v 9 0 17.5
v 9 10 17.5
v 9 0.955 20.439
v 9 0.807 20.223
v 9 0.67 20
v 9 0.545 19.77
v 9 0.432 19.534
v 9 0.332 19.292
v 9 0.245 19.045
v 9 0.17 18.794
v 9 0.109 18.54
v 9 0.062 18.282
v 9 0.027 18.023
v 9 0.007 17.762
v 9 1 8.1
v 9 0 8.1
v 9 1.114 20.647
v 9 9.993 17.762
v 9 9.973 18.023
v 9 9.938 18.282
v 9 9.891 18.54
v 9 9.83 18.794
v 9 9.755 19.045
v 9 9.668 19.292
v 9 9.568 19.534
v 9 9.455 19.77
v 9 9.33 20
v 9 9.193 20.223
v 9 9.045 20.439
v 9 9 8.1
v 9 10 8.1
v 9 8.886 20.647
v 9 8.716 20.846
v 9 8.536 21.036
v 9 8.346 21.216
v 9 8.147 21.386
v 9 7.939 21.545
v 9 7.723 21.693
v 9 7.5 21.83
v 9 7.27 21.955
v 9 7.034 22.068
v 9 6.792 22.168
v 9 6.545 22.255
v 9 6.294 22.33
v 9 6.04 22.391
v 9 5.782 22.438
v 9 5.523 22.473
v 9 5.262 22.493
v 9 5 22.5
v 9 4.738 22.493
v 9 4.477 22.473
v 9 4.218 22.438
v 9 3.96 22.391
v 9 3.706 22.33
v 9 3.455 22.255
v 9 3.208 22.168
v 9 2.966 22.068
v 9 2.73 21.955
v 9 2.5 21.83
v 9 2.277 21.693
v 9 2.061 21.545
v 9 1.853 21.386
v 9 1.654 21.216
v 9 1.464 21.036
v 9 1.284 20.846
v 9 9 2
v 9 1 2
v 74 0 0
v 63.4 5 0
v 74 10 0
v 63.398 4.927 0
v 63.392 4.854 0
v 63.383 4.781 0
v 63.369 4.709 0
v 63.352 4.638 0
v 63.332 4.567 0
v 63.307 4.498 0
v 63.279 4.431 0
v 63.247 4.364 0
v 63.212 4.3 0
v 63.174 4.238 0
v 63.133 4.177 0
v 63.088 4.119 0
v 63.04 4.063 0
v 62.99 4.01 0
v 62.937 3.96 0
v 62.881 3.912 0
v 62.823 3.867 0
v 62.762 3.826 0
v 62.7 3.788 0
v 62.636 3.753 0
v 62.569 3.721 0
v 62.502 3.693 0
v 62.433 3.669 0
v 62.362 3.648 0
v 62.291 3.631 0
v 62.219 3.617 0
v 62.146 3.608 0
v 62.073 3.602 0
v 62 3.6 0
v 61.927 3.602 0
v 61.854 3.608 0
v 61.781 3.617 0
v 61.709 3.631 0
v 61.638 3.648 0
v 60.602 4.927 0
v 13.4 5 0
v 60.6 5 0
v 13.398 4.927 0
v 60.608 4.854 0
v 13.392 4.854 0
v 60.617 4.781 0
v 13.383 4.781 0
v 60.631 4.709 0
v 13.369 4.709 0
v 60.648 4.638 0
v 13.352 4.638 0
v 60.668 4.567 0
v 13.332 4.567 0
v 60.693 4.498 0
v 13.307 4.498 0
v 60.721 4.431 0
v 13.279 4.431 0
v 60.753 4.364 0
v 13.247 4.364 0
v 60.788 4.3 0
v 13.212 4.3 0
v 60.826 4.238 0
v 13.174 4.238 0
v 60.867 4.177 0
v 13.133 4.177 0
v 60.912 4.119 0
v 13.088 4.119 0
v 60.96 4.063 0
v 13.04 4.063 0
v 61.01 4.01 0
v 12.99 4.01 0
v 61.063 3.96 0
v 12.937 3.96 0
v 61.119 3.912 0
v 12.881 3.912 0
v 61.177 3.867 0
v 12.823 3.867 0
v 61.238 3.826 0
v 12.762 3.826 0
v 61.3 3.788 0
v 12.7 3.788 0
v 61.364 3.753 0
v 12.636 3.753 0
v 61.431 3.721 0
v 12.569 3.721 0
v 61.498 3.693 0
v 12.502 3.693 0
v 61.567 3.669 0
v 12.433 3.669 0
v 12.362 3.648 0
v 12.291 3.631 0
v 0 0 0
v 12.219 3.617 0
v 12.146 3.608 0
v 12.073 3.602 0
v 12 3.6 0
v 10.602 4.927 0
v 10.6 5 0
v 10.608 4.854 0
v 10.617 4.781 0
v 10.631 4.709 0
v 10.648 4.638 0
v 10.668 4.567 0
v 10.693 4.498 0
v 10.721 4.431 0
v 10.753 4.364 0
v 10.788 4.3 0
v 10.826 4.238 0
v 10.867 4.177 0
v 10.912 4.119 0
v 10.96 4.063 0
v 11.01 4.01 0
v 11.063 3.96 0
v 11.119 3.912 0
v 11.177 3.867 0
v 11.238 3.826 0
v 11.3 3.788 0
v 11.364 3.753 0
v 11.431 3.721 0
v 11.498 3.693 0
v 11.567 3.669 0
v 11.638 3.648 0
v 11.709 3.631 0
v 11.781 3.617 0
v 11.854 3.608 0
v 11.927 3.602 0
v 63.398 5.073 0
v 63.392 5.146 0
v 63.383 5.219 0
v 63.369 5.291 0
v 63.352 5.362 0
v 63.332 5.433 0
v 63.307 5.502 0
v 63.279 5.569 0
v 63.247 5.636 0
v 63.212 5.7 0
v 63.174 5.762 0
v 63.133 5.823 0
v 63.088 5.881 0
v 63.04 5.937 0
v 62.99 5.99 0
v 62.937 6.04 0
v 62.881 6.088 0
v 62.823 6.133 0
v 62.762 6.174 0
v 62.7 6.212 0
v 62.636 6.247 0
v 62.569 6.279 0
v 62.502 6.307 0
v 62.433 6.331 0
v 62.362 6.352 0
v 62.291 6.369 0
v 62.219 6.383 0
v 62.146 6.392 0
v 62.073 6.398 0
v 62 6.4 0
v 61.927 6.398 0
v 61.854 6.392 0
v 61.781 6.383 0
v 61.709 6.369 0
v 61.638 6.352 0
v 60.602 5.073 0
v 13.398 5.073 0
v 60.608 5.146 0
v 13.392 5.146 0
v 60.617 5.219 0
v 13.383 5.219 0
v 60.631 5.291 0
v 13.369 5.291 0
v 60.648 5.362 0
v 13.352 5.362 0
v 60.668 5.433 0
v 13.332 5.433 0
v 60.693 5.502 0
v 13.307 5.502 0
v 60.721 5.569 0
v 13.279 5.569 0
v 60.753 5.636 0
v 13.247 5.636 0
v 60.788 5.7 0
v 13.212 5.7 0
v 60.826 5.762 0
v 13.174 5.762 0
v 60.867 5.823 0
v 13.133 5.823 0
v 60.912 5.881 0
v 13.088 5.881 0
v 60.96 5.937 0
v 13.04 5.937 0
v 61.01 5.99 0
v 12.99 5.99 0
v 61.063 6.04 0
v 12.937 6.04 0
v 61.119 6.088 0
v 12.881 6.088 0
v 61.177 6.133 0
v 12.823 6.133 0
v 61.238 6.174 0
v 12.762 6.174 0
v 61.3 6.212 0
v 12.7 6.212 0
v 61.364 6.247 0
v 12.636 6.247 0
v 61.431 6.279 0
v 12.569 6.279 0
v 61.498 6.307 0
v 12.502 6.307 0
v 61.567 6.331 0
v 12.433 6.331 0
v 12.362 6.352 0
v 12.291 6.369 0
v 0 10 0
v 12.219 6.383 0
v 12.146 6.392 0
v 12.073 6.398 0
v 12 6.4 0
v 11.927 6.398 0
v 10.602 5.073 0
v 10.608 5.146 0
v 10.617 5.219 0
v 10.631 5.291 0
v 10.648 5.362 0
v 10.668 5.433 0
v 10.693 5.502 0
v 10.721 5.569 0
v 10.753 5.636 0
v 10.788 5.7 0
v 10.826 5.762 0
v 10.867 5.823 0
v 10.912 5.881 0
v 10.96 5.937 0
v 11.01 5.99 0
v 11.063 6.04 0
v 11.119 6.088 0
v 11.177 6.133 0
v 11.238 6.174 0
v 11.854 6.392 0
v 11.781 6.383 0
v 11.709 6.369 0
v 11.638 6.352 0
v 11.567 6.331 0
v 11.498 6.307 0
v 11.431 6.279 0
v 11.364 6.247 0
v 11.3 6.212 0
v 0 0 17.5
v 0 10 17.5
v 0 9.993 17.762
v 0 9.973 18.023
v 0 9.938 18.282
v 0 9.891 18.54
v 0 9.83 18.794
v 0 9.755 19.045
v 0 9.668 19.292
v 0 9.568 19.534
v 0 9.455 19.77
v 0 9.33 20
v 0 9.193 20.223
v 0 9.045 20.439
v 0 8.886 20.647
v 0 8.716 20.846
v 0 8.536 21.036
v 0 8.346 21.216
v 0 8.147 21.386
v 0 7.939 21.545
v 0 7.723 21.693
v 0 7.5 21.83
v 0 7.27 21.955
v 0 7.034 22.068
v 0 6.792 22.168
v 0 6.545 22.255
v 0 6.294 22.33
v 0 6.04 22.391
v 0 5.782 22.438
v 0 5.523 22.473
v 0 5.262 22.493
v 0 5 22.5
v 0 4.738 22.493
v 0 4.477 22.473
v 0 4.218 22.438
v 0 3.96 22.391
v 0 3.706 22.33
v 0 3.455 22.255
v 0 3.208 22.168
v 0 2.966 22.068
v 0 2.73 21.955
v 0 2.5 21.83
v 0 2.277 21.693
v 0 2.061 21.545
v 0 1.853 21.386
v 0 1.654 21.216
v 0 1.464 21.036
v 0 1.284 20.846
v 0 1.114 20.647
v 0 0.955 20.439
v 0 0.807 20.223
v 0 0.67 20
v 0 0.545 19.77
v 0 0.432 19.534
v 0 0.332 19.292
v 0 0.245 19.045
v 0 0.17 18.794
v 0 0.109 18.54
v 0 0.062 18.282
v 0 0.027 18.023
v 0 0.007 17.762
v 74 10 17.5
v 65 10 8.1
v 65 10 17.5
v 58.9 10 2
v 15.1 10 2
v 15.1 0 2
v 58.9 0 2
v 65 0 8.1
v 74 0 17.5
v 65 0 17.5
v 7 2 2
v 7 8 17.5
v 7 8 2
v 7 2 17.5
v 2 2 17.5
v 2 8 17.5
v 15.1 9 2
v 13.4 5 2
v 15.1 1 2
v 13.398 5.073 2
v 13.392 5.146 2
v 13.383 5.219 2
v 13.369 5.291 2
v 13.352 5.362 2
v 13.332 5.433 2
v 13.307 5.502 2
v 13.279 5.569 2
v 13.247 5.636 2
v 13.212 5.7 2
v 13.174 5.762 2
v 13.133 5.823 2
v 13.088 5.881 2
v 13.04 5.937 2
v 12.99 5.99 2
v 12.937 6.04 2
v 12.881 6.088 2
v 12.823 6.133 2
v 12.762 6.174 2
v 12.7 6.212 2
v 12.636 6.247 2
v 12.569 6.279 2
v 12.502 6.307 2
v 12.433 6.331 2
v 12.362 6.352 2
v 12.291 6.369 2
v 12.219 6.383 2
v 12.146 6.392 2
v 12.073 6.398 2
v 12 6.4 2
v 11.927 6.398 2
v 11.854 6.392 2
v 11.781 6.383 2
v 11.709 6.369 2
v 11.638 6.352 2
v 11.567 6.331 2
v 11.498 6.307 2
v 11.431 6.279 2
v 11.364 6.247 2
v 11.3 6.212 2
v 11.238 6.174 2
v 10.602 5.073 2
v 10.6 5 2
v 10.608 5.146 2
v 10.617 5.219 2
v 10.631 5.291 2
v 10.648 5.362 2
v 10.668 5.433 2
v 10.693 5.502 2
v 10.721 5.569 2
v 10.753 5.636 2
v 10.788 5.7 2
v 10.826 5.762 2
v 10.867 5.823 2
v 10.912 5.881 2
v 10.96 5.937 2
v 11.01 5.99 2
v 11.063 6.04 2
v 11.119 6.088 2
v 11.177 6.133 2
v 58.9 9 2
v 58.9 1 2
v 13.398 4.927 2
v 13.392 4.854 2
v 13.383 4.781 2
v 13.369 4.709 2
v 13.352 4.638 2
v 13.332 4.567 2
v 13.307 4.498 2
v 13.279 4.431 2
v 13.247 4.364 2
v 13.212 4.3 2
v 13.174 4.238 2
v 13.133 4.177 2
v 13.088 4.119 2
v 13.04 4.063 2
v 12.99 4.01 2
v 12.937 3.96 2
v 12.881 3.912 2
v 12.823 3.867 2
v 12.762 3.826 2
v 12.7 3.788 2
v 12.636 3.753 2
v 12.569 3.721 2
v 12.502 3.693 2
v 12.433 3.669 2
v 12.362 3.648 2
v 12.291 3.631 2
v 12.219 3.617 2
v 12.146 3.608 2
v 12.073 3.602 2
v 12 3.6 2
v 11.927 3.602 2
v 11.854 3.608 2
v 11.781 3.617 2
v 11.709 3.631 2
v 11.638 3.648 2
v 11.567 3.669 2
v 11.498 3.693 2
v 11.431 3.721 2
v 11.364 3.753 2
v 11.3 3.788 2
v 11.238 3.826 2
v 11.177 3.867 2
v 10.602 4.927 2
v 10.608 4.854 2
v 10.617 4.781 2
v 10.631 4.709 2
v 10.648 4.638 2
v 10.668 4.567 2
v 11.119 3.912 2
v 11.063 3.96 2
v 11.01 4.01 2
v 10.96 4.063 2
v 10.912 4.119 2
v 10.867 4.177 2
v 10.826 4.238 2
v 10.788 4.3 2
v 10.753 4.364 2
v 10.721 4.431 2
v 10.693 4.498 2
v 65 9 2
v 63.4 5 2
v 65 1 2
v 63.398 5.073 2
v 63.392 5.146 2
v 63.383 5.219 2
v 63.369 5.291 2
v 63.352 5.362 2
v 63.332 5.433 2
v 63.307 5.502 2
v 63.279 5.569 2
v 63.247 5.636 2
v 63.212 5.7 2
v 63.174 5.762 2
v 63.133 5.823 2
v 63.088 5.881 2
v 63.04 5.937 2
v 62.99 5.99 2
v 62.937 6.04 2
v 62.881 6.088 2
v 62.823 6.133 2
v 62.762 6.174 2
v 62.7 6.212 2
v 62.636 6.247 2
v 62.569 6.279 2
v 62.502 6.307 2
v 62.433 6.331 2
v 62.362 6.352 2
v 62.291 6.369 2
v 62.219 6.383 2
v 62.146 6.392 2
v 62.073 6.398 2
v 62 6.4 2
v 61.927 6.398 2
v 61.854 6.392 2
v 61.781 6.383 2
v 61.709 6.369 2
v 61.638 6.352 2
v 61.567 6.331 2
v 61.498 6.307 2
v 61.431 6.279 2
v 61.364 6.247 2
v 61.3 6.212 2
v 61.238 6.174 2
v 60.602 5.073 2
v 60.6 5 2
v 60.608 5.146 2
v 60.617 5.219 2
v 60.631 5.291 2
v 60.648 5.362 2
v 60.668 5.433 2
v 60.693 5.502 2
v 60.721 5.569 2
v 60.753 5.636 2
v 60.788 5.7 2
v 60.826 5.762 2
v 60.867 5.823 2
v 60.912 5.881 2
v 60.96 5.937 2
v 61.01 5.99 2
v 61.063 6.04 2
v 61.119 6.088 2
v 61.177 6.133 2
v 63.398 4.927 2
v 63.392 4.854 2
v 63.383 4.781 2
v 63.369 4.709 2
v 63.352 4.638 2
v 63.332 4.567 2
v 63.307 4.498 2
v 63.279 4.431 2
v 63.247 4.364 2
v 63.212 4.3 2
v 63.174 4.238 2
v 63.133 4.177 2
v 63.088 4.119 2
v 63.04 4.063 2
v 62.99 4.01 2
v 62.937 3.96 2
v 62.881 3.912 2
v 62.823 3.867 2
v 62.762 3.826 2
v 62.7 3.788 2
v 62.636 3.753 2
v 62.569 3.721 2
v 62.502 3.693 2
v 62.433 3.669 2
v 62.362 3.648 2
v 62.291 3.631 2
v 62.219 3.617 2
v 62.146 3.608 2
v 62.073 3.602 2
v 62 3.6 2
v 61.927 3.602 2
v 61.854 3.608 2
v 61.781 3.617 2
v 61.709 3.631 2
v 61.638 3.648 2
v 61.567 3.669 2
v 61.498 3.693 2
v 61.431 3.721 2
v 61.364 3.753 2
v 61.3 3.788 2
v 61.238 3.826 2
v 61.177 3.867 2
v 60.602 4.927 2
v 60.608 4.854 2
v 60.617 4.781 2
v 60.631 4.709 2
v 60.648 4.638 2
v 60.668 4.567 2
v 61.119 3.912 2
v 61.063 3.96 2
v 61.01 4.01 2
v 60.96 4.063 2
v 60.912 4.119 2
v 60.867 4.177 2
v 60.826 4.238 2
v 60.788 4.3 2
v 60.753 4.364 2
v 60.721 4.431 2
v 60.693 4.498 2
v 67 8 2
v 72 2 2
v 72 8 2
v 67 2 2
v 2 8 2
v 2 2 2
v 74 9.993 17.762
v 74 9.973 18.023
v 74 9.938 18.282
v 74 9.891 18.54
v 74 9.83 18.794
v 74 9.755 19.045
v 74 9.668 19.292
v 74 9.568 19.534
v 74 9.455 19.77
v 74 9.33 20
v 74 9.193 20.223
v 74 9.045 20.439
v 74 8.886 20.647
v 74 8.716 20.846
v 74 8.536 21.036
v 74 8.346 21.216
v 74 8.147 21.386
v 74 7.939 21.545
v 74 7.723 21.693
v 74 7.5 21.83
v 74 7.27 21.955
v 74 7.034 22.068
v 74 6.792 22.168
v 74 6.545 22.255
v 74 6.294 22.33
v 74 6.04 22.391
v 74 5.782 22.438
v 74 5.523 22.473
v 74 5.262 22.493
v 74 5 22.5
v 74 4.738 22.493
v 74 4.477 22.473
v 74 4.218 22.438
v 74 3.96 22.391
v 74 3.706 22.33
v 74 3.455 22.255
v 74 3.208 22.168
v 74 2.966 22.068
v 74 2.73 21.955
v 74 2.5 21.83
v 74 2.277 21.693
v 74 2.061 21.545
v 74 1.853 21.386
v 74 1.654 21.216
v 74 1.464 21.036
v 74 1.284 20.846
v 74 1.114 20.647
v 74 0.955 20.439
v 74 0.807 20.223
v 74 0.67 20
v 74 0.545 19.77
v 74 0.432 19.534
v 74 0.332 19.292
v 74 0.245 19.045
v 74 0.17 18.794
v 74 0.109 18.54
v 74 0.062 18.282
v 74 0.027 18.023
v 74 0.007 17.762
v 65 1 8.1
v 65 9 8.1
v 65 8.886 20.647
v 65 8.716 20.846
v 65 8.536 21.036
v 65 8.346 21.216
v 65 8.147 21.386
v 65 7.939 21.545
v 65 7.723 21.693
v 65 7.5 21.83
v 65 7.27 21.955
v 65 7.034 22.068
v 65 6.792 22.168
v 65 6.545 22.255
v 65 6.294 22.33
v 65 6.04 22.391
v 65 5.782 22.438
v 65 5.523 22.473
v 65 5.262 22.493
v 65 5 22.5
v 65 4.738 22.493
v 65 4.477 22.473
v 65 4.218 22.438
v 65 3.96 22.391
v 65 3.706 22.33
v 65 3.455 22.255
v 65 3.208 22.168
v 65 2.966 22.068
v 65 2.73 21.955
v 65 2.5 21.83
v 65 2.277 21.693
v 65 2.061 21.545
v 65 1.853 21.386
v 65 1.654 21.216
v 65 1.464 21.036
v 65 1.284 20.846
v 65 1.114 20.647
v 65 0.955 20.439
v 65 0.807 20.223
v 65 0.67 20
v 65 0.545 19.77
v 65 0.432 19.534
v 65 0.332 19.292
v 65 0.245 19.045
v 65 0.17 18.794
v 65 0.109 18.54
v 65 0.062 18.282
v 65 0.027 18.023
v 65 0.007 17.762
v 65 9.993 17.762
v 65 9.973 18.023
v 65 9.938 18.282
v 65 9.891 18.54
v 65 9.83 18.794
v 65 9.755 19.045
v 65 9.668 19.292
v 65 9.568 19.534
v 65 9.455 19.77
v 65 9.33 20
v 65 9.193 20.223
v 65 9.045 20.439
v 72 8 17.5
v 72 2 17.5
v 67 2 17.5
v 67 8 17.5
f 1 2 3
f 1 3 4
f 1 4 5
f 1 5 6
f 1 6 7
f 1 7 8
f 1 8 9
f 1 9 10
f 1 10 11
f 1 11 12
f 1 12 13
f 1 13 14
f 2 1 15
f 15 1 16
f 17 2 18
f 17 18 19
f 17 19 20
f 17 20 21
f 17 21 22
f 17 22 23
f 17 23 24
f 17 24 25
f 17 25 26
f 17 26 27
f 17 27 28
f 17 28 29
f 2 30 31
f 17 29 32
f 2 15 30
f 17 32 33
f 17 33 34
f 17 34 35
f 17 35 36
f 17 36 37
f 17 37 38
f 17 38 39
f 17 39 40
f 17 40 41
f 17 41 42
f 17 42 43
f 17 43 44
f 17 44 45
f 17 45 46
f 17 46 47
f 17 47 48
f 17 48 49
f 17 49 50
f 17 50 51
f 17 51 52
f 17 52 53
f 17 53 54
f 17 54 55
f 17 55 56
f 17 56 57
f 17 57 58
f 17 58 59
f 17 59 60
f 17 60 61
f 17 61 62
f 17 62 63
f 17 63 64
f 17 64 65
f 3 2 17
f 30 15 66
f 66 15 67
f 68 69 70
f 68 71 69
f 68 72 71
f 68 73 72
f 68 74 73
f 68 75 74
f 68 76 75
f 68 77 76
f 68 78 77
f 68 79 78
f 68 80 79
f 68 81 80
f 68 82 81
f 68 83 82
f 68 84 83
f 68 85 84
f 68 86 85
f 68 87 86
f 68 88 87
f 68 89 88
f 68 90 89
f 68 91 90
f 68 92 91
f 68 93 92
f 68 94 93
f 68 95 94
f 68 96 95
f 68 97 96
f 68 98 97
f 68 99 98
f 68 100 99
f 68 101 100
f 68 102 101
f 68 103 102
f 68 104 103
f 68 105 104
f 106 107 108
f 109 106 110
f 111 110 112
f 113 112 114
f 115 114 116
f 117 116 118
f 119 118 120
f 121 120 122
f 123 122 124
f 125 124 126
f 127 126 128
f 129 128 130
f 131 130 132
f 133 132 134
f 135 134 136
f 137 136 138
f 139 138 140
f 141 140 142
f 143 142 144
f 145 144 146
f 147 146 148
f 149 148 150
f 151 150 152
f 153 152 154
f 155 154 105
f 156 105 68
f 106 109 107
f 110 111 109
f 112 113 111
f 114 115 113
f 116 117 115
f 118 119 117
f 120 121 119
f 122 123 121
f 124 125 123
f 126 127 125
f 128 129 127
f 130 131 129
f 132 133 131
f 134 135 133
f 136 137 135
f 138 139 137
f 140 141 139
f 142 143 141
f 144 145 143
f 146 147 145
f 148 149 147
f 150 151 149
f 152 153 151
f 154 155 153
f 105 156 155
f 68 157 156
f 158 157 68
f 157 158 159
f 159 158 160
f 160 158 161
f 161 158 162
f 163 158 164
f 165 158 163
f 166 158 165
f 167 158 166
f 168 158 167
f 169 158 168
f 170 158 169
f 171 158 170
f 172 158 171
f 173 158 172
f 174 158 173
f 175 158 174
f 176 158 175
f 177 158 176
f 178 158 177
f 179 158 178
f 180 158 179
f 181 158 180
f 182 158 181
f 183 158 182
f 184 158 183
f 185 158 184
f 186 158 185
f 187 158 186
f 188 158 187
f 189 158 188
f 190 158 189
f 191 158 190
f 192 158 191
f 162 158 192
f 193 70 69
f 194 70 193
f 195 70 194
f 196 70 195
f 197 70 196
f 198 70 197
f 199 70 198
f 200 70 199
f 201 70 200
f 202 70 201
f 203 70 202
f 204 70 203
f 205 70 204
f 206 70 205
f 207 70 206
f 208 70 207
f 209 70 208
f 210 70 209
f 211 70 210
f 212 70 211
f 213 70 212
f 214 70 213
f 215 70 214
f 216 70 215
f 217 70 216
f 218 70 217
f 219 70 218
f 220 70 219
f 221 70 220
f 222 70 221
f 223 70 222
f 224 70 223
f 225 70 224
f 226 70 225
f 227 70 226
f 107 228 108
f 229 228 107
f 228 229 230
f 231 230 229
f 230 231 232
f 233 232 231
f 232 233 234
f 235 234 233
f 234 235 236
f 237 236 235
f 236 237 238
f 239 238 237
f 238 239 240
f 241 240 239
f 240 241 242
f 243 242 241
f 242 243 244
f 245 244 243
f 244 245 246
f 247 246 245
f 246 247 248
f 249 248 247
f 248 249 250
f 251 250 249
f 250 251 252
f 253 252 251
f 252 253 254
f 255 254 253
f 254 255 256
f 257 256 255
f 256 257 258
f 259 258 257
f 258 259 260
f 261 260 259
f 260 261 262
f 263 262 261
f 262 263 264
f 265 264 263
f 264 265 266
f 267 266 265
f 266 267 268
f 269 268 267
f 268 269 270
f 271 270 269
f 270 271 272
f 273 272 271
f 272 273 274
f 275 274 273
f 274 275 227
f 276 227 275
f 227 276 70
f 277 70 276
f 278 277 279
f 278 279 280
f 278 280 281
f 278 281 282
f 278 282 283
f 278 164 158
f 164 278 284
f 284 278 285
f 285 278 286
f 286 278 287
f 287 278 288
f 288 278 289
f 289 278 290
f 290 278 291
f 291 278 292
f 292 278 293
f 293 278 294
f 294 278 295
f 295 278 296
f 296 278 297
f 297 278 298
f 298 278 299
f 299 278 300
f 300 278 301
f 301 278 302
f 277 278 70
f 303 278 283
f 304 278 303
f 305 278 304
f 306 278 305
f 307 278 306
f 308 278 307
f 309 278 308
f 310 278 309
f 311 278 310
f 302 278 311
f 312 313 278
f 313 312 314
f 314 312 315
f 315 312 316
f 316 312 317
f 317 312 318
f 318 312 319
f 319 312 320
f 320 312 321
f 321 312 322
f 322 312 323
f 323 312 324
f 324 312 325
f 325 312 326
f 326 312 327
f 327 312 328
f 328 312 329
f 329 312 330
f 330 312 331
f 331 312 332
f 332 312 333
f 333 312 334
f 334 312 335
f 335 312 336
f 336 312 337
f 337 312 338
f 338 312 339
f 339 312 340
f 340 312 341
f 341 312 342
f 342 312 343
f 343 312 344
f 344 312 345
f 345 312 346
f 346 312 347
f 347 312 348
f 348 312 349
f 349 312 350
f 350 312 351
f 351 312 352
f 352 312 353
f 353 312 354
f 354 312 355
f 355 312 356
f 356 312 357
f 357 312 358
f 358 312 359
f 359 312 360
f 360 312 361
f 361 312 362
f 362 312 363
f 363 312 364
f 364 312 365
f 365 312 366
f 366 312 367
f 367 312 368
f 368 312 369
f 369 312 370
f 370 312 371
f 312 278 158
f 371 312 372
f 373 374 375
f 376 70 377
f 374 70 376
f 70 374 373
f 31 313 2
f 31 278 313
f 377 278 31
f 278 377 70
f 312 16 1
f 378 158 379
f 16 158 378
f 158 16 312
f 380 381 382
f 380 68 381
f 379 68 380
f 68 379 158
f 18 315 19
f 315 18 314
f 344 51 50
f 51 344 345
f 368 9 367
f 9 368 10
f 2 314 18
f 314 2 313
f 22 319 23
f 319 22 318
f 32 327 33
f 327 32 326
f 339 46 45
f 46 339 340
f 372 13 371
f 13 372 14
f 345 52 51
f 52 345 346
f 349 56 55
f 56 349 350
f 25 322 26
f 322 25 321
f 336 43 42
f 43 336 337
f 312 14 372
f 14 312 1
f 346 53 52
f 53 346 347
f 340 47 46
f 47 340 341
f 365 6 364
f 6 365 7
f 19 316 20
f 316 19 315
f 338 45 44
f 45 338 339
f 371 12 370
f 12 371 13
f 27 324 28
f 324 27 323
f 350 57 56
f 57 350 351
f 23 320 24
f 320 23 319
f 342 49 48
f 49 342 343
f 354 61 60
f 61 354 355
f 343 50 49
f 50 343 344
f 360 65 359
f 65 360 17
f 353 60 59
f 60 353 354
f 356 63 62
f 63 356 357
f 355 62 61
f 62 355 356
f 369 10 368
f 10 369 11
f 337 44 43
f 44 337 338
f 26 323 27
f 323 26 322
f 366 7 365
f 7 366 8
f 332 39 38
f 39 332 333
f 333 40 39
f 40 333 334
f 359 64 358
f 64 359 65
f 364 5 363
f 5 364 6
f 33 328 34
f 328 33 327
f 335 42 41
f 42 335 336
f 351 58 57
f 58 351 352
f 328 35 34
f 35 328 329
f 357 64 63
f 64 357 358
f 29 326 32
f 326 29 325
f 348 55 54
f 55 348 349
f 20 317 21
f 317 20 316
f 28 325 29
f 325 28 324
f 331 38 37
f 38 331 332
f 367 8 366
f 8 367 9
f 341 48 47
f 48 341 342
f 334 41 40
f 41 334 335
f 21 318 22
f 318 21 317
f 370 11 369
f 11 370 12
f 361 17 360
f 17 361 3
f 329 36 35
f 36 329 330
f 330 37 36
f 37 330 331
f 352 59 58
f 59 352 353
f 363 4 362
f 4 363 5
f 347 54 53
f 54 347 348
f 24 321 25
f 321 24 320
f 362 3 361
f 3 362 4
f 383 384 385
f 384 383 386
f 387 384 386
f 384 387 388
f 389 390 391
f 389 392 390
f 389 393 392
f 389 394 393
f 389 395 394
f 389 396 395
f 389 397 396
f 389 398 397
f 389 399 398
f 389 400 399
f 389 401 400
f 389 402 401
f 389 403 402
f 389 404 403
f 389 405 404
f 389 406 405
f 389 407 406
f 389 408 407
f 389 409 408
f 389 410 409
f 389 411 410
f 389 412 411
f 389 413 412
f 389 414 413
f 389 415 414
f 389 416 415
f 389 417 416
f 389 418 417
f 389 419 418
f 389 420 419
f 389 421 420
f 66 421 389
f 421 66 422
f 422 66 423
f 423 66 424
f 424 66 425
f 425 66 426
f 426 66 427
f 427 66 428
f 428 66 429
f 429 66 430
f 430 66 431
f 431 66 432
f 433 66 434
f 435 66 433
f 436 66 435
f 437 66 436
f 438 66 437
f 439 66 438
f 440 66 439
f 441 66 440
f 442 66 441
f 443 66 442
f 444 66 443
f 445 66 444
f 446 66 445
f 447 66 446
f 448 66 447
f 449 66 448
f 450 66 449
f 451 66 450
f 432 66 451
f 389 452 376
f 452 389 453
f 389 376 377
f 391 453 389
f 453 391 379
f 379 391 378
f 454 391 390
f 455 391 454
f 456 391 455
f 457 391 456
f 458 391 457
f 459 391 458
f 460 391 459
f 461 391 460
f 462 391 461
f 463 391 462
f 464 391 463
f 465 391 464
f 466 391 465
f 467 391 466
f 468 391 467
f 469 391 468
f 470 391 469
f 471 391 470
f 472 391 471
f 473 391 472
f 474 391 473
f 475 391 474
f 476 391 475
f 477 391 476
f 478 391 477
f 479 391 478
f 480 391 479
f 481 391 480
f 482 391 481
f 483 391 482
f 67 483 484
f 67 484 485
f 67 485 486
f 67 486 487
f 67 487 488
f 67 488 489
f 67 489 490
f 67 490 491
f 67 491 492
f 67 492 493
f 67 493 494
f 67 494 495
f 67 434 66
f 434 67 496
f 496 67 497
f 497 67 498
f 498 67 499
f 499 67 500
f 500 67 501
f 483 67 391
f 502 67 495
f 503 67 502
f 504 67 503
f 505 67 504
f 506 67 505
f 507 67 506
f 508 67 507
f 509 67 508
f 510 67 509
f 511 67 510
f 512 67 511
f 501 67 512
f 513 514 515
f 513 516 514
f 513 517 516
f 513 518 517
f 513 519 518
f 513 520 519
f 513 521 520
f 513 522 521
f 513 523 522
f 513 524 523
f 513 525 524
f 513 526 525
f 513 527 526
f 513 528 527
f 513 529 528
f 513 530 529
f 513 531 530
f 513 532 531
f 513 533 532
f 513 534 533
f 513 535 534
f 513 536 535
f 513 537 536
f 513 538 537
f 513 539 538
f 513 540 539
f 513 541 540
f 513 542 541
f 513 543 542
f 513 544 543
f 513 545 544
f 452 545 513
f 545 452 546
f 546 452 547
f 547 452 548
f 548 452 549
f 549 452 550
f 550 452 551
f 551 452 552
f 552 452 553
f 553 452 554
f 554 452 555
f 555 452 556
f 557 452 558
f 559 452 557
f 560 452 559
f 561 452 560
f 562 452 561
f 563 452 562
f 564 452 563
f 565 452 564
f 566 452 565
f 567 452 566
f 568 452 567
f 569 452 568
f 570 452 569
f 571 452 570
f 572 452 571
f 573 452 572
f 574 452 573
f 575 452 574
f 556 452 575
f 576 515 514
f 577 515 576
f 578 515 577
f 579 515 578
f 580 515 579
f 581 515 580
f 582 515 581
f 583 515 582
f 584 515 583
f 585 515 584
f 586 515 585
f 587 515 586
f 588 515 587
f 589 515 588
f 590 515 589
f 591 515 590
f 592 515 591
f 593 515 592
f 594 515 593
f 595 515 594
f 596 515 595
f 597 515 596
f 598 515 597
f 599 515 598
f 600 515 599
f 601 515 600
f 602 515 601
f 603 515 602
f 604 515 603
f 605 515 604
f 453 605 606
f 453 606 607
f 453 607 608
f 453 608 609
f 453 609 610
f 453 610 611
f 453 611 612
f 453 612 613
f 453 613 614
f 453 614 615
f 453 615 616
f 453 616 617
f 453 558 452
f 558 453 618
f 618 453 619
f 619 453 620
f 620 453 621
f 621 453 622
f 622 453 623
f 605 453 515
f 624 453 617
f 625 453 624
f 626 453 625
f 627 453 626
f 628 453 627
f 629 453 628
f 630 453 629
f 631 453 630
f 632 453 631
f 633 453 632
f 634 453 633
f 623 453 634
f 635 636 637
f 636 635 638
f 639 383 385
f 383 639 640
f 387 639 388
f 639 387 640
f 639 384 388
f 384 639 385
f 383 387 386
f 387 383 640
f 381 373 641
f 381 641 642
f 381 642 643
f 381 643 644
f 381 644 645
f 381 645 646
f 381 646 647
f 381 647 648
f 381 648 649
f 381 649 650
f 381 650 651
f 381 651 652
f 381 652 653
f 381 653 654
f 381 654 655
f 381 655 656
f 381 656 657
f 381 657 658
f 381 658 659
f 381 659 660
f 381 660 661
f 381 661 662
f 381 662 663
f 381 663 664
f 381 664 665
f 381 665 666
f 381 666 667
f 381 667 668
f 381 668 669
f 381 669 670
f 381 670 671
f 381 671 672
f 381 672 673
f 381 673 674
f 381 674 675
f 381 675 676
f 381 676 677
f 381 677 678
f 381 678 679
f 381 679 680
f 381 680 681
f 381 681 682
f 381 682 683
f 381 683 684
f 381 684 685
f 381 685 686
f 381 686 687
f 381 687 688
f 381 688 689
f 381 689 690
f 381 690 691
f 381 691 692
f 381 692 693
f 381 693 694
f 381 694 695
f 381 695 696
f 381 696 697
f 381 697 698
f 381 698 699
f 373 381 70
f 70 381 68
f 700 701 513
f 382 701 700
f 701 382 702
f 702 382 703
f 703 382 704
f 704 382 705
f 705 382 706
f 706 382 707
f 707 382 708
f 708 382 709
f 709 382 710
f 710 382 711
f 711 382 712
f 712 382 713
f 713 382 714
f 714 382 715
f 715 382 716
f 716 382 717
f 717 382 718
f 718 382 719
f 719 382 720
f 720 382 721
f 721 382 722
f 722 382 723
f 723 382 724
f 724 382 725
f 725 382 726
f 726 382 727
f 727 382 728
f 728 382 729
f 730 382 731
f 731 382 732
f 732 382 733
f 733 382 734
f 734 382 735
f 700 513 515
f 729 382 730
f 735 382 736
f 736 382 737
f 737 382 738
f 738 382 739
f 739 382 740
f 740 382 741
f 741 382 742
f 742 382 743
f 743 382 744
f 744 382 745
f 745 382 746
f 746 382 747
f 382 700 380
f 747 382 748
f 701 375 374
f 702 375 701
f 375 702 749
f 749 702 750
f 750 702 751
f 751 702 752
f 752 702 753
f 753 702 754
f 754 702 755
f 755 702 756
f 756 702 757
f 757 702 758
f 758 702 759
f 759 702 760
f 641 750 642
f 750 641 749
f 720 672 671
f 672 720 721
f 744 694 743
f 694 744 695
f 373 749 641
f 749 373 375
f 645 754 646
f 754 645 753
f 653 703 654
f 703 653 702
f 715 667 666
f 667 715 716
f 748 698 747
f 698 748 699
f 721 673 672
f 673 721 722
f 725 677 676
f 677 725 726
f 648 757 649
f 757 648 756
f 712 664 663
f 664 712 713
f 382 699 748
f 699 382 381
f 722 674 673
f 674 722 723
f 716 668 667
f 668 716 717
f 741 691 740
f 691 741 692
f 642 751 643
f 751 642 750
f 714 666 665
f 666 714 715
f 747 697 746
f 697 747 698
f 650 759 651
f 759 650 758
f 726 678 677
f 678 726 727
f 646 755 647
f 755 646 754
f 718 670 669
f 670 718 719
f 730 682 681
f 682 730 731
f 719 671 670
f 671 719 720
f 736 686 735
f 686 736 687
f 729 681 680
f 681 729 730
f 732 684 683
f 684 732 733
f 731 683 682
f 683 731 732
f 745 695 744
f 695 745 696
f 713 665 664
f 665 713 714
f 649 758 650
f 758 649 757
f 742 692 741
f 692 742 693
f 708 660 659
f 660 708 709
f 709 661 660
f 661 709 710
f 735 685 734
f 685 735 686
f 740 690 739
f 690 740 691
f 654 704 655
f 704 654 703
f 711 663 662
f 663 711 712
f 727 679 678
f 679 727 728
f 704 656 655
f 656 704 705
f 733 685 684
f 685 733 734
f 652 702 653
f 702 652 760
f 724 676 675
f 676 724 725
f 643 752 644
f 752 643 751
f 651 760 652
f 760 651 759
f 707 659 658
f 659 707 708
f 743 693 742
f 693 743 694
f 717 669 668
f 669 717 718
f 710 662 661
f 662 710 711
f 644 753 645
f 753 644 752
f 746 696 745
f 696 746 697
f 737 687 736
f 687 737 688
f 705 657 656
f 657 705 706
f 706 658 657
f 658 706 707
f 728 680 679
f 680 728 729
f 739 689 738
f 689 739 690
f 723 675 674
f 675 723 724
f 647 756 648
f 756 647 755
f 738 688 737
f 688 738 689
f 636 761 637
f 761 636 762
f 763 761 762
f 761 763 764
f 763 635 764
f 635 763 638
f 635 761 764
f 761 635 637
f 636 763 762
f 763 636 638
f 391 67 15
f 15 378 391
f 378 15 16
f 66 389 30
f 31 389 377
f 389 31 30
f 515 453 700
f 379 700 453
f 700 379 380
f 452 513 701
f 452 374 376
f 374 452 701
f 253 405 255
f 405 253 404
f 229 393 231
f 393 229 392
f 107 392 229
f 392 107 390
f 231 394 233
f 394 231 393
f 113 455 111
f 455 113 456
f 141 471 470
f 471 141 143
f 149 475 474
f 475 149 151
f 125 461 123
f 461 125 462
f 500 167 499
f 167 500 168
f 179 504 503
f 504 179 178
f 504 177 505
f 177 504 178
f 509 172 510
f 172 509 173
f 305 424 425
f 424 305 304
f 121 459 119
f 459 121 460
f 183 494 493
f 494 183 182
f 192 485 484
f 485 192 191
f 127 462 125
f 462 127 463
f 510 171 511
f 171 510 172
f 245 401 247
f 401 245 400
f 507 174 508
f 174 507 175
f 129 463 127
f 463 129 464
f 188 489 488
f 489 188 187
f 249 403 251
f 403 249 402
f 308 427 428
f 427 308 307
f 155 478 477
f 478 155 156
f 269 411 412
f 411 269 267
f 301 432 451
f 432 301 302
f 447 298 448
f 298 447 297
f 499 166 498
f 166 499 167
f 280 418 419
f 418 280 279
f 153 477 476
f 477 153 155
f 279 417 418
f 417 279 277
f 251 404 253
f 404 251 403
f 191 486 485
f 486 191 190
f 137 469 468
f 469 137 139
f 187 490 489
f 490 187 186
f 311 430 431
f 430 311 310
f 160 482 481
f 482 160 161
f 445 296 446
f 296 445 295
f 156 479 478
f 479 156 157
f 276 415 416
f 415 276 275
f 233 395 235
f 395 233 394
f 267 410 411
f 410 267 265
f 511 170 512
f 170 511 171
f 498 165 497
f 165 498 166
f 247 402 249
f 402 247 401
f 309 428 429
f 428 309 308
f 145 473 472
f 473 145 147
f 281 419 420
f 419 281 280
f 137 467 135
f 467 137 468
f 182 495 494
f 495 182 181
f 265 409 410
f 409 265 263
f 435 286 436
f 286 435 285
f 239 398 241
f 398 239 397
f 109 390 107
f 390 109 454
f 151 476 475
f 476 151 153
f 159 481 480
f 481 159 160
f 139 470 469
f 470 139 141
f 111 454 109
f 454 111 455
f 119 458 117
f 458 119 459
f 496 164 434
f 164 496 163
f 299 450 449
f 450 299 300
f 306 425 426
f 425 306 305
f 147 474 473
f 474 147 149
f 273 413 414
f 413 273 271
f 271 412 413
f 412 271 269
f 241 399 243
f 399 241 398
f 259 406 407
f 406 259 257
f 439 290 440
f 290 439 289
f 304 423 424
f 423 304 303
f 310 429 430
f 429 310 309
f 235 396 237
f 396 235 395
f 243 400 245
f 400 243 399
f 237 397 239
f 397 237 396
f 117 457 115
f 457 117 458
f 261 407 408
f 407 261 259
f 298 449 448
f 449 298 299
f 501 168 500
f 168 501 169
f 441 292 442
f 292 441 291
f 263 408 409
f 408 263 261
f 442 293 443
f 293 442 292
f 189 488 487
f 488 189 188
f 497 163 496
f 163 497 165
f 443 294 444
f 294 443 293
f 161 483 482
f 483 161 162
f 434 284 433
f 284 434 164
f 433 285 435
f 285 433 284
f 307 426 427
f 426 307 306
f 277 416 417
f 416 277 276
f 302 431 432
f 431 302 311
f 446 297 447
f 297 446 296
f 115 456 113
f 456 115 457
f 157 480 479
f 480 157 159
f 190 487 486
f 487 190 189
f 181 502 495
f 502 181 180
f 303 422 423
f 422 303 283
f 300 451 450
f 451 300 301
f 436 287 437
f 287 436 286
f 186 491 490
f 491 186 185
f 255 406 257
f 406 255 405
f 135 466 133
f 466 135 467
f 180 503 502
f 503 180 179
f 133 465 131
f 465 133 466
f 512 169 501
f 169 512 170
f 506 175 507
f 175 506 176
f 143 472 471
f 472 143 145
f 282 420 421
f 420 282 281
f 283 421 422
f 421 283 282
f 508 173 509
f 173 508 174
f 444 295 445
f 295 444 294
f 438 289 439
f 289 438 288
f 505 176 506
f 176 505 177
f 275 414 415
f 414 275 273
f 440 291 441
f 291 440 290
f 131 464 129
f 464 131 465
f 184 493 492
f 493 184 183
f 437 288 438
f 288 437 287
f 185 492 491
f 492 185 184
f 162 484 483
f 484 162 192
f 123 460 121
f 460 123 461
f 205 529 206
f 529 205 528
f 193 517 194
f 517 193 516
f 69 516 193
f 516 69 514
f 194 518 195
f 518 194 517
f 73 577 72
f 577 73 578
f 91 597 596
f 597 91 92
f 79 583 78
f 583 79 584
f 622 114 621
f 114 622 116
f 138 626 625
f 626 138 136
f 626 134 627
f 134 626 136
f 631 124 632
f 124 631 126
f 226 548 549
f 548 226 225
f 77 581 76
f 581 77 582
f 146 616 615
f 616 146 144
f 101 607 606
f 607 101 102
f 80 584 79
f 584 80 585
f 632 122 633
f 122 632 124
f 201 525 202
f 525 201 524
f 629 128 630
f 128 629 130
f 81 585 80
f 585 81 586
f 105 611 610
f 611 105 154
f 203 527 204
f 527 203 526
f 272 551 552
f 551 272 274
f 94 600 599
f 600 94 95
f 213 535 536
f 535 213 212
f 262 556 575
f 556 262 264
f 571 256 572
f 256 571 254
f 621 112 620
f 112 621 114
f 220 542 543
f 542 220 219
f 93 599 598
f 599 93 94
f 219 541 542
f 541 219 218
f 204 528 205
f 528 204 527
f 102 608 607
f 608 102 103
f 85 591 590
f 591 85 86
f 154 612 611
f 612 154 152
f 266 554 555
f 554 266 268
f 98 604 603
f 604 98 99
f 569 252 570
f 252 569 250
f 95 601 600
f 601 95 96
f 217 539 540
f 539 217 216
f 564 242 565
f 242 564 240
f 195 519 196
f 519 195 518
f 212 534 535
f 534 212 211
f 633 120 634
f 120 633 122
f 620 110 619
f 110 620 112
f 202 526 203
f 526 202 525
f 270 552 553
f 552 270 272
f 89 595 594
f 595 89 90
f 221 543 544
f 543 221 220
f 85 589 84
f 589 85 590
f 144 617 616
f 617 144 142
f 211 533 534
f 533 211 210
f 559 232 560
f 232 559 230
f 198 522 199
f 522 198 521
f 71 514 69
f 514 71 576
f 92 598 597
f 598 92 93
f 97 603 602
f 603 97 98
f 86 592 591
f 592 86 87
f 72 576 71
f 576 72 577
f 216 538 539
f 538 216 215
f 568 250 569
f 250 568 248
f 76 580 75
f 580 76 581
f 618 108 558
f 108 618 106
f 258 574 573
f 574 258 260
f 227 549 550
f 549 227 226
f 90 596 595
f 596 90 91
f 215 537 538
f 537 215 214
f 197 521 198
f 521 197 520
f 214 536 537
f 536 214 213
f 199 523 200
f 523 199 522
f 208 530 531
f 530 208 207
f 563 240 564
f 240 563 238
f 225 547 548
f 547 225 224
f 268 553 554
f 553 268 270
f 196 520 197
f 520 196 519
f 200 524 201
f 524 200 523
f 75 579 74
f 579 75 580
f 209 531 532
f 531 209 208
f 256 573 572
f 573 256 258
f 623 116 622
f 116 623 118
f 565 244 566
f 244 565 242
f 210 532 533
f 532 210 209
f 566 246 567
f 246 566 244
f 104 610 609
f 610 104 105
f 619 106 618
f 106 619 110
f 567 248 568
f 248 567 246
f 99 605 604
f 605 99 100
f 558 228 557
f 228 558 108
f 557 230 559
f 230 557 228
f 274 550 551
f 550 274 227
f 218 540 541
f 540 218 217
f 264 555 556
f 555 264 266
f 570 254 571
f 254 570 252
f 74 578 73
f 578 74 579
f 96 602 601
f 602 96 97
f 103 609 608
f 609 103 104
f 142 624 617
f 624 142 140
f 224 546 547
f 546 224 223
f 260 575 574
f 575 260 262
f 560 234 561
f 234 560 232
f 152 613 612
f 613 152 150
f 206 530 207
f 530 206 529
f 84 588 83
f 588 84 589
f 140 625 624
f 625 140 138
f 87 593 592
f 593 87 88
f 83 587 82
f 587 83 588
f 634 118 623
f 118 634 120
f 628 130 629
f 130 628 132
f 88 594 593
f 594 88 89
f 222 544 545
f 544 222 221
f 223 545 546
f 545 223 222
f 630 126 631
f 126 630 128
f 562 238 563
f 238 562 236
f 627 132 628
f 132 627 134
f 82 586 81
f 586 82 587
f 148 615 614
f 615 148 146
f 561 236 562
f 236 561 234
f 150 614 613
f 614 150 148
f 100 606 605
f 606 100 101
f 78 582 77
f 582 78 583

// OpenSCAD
//
// Foot assembly for weeBell enclosure
//
// Copyright 2023 (c) Dan Julio
//
// Apologies as I'm not a mechanical engineer and this is a bit of a
// hack...  But it gets the job done.
//
// Dimensions are mm.
//
// Version 1.0 - Initial release
//
// standalone_enclosure is free software: you can redistribute it and/or
// modify by it under the terms of the GNU General Public License as
// published the Free Software Foundation, either version 3 of the
// License, or (at your option) any later version.
//
// standalone_enclosure is distributed in the hope that it will be useful,
// but WITHOUT ANY WARRANTY; without even the implied warranty of
// MERCHANTABILITY or FITNESS FOR A PARTICULAR PURPOSE.  See the
// GNU General Public License for more details.
//
// You should have received a copy of the GNU General Public License
// along with standalone_enclosure.  If not, see <https://www.gnu.org/licenses/>.
//

// Dimensions
foot_mnt_plate_width = 74;
foot_mnt_plate_thickness = 2;
foot_width = 9;
foot_depth = 10;
foot_height = 22.5;
foot_wall_thickness = 2;
foot_support_width = 6.1;
foot_support_thickness = 1;
foot_mnt_hole_distance = 50;
foot_mnt_hole_diameter = 2.8;


// Foot
module foot() {
    difference() {
        union() {
            cube([foot_width, foot_depth, foot_height - (foot_depth / 2)]);
    
            translate([0, foot_depth/2, foot_height - (foot_depth / 2)]) {
                rotate([0, 90, 0]) {
                    cylinder(h = foot_width, d = foot_depth, $fn = 120);
                }
            }
        }
        
        // hollow inside
        translate([foot_wall_thickness, foot_wall_thickness, foot_wall_thickness]) {
            cube([foot_width - 2*foot_wall_thickness, foot_depth - 2*foot_wall_thickness, foot_height - (foot_depth / 2) - foot_wall_thickness]);
        }
    }
}


// Support triangle
module support_triangle() {    
    difference() {
        cube([foot_support_width, foot_support_thickness, foot_support_width]);
        
        translate([foot_support_width, 0, 0]) {
            rotate([0, -45, 0]) {
                translate([0, -0.1, -0.1]) {
                    cube([foot_support_width, foot_support_thickness + 0.2, 2*foot_support_width]);
                }
            }
        }
    }
}


// Foot Assembly
difference() {
    union() {
        // Mounting plate
        cube([foot_mnt_plate_width, foot_depth, foot_mnt_plate_thickness]);
        
        // Feet
        foot();
        
        translate([foot_mnt_plate_width - foot_width, 0, 0]) {
            foot();
        }
        
        // Supports
        translate([foot_width, 0, foot_mnt_plate_thickness]) {
            support_triangle();
        }
        
        translate([foot_width, foot_depth - foot_support_thickness, foot_mnt_plate_thickness]) {
            support_triangle();
        }
        
        translate([foot_mnt_plate_width - foot_width, foot_support_thickness, foot_mnt_plate_thickness]) {
            rotate([0, 0, 180]) {
                support_triangle();
            }
        }
        
        translate([foot_mnt_plate_width - foot_width, foot_depth, foot_mnt_plate_thickness]) {
            rotate([0, 0, 180]) {
                support_triangle();
            }
        }
    }
    
    // Foot mounting holes
    translate([(foot_mnt_plate_width - foot_mnt_hole_distance)/2, foot_depth/2, -1]) {
        cylinder(h = foot_depth + 2, r = foot_mnt_hole_diameter/2, $fn= 120);
    }
    
     translate([(foot_mnt_plate_width + foot_mnt_hole_distance)/2, foot_depth/2, -1]) {
        cylinder(h = foot_depth + 2, r = foot_mnt_hole_diameter/2, $fn= 120);
    }
}
